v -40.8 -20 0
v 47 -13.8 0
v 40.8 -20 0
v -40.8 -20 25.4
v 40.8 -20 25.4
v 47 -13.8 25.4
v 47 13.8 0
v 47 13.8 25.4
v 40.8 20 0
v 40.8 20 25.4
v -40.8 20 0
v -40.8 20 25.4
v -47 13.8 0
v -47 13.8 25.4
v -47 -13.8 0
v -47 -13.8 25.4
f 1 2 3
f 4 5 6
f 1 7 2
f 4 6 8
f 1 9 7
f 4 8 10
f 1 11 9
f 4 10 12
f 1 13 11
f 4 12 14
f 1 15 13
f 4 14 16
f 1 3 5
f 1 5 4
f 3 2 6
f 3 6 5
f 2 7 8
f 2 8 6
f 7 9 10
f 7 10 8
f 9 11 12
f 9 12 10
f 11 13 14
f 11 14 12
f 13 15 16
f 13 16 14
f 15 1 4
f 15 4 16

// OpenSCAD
// Millimetres. Material/chemical compatibility not validated.
height_mm = 25.4;
linear_extrude(height=height_mm) polygon(points=[[-40.800000000000004, -20.0], [40.800000000000004, -20.0], [47.0, -13.799999999999999], [47.0, 13.799999999999999], [40.800000000000004, 20.0], [-40.800000000000004, 20.0], [-47.0, 13.799999999999999], [-47.0, -13.799999999999999]]);
